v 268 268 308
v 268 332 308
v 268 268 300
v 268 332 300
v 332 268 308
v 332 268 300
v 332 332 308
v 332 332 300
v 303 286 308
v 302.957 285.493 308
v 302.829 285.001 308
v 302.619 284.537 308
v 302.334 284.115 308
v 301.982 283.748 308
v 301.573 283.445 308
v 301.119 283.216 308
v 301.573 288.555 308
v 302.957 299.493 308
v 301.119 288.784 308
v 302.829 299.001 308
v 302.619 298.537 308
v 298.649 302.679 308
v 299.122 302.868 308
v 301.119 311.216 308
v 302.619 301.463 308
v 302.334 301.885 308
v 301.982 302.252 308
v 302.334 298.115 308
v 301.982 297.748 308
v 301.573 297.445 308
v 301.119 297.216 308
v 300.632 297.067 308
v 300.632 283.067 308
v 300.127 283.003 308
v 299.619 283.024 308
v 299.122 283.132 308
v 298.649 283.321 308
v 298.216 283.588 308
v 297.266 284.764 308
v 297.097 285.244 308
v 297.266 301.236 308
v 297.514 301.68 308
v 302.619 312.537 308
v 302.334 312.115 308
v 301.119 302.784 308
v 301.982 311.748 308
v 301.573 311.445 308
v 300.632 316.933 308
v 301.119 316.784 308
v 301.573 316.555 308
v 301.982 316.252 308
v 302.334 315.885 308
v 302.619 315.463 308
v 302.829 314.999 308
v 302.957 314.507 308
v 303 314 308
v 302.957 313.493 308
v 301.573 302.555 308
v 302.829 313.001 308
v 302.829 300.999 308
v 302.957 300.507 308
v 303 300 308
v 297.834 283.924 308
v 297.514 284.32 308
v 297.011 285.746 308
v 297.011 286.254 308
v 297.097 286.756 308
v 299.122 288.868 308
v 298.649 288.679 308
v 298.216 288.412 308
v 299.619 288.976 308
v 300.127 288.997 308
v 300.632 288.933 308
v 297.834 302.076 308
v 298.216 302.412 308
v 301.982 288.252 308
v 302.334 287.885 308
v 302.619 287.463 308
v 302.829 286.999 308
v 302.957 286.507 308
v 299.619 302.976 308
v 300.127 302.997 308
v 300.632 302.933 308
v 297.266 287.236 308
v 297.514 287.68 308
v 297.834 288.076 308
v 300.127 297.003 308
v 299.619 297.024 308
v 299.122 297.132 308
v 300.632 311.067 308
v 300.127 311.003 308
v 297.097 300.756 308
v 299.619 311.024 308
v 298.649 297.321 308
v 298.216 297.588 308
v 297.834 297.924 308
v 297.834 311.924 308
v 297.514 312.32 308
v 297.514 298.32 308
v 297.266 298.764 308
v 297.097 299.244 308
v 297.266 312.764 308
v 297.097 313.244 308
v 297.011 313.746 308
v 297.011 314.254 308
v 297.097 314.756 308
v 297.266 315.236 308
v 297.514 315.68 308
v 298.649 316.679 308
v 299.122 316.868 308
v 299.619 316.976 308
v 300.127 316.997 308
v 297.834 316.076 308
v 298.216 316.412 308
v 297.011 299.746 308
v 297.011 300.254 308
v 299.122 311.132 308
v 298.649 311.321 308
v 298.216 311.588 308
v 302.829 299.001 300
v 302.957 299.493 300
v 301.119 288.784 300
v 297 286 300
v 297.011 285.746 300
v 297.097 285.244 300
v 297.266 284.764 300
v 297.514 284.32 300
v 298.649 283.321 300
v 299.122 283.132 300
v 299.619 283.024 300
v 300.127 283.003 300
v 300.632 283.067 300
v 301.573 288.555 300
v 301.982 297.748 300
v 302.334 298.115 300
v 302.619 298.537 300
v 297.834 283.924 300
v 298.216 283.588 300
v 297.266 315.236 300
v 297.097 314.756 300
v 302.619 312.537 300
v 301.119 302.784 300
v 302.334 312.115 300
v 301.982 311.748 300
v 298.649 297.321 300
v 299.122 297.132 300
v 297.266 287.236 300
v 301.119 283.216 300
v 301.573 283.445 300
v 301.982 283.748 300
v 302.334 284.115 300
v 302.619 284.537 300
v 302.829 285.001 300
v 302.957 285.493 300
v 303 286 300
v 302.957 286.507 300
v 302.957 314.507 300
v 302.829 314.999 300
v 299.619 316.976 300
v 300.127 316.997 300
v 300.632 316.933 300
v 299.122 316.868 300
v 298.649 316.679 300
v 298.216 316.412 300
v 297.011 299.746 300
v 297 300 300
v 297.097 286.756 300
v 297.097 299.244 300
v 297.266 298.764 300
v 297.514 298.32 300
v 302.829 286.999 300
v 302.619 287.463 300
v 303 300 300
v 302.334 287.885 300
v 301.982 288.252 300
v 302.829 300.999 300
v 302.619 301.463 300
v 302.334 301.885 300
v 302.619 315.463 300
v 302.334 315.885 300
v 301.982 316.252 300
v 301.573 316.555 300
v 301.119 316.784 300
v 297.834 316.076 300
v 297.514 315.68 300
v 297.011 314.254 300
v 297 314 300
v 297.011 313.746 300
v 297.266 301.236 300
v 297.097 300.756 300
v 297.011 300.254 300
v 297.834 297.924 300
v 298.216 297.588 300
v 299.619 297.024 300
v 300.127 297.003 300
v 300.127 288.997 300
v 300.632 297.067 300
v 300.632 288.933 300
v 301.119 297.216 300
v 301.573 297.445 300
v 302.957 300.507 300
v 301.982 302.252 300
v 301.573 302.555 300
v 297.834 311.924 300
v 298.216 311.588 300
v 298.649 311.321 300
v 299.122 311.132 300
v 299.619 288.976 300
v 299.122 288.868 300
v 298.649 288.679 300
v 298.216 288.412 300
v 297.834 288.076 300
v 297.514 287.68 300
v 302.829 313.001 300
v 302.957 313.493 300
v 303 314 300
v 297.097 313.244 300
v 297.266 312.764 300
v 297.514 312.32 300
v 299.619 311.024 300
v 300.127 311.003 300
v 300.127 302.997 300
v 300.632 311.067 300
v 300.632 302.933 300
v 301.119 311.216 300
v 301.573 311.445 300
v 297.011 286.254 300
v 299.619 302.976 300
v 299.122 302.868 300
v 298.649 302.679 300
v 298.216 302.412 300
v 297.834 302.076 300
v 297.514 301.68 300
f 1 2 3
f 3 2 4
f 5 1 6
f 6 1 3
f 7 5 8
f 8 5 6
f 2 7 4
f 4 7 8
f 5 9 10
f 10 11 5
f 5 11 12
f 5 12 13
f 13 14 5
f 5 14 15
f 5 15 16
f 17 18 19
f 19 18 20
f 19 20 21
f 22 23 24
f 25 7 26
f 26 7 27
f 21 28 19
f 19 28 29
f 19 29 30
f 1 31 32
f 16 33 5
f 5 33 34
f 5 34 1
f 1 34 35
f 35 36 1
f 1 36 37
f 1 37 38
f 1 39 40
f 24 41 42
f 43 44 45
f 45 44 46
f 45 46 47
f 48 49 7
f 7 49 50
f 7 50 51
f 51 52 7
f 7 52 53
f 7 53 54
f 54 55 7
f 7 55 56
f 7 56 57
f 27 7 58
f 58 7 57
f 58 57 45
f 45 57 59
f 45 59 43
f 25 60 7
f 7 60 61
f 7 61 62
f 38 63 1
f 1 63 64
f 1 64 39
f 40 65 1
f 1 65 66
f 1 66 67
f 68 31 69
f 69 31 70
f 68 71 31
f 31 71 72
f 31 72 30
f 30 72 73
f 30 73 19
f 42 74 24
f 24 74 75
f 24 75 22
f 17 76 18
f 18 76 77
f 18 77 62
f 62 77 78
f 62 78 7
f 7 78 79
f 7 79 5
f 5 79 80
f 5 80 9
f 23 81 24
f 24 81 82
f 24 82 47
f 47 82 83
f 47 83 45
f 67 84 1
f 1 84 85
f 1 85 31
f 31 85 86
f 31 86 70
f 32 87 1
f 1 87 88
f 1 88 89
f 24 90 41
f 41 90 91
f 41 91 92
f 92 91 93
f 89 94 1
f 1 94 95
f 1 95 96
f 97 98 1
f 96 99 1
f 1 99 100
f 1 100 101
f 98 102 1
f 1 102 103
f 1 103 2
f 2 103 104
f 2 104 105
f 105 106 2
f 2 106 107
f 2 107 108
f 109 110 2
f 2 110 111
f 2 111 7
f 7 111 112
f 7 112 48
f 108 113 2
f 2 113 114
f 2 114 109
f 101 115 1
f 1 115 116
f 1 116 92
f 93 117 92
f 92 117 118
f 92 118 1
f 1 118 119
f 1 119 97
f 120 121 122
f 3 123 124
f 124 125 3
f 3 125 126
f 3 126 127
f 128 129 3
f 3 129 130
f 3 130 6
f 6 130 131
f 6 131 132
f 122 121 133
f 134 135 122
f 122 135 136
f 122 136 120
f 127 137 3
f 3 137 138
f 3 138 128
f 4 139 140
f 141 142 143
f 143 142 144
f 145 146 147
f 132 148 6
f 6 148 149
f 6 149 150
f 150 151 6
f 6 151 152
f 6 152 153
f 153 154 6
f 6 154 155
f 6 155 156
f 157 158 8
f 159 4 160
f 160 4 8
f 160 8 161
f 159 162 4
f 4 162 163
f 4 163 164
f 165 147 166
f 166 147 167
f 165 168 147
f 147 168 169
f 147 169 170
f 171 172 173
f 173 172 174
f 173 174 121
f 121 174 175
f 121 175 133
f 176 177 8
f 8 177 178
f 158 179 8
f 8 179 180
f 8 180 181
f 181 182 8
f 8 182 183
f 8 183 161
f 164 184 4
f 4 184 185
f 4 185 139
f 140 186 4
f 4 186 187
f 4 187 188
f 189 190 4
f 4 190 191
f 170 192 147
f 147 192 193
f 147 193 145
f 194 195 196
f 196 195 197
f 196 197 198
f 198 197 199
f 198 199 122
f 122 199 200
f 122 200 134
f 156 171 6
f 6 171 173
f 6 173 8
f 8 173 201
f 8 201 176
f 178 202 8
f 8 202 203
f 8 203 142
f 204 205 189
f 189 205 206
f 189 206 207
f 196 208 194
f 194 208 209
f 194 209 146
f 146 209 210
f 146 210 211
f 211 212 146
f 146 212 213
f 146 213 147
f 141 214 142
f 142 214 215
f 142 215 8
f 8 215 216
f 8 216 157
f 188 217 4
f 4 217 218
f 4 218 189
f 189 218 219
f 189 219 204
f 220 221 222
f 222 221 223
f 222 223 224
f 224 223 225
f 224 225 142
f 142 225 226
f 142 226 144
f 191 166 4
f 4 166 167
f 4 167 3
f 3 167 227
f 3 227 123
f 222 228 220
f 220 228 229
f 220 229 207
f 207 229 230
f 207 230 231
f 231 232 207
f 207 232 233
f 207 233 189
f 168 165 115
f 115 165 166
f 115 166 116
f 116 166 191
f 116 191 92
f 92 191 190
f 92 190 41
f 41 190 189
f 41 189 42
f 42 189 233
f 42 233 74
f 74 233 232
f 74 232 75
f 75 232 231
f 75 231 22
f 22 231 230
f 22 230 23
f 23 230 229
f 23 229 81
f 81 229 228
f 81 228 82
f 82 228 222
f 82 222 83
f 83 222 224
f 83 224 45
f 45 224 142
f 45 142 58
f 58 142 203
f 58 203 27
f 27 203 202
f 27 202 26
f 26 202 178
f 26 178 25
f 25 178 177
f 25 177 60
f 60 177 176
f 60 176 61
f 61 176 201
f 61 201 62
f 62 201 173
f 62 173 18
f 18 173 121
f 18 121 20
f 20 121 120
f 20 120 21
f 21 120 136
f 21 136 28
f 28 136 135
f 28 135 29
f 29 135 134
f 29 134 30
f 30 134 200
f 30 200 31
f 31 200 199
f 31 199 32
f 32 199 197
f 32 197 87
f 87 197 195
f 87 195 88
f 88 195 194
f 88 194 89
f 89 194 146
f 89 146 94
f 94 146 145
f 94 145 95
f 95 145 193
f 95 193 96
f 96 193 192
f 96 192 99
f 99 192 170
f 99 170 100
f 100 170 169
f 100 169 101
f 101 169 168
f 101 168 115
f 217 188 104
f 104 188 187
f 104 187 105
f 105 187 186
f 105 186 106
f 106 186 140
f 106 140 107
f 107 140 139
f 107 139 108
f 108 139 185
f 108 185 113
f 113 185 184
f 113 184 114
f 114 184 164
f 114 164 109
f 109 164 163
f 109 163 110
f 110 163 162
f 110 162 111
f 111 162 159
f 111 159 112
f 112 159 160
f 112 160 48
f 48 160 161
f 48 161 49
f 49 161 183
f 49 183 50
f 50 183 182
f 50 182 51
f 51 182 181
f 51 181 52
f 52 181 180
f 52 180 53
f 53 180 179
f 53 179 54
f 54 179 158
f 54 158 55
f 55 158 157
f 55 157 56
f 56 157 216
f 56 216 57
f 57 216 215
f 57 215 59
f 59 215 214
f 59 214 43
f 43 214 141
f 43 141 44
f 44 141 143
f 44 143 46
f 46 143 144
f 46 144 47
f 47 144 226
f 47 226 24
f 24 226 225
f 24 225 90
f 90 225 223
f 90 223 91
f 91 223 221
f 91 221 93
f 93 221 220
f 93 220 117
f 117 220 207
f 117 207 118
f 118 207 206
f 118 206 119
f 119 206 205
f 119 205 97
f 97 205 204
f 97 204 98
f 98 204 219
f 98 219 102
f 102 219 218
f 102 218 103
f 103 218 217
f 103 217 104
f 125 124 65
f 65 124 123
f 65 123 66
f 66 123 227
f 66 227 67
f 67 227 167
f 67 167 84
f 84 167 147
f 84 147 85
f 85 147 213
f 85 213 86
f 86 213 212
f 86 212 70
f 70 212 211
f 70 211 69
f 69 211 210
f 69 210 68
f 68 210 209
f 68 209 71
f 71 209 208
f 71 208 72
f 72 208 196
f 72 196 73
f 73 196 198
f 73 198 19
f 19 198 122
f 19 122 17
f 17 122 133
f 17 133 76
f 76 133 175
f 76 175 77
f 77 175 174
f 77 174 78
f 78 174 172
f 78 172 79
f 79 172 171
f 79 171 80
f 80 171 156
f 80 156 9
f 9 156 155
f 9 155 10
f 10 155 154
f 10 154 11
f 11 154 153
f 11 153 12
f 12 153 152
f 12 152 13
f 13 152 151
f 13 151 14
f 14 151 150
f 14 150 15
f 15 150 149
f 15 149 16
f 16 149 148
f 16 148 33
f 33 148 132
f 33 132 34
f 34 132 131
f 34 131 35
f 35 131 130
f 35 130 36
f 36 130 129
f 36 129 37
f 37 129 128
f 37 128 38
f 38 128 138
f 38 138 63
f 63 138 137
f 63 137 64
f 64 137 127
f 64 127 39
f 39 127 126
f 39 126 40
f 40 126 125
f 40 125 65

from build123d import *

# Parameters (mm, degrees)
SKETCH1_W           = 64
SKETCH1_H           = 64
BOSS_EXTRUDE1_DEPTH = 8
SKETCH2_R           = 3
CUT_EXTRUDE1_DEPTH  = 28
SKETCH3_R           = 3
CUT_EXTRUDE2_DEPTH  = 28
SKETCH4_R           = 3
CUT_EXTRUDE3_DEPTH  = 28


with BuildPart() as part:
    # Sketch1 → Boss-Extrude1 (new body)
    with BuildSketch(Plane.XY.offset(300)):
        with Locations((300, 300)):
            Rectangle(SKETCH1_W, SKETCH1_H)
    extrude(amount=BOSS_EXTRUDE1_DEPTH)

    # Sketch2 → Cut-Extrude1 (cut)
    with BuildSketch(Plane.XY.offset(308)):
        with Locations((300, 300)):
            Circle(SKETCH2_R)
    extrude(amount=-CUT_EXTRUDE1_DEPTH, mode=Mode.SUBTRACT)

    # Sketch3 → Cut-Extrude2 (cut)
    with BuildSketch(Plane.XY.offset(308)):
        with Locations((300, 314)):
            Circle(SKETCH3_R)
    extrude(amount=-CUT_EXTRUDE2_DEPTH, mode=Mode.SUBTRACT)

    # Sketch4 → Cut-Extrude3 (cut)
    with BuildSketch(Plane.XY.offset(308)):
        with Locations((300, 286)):
            Circle(SKETCH4_R)
    extrude(amount=-CUT_EXTRUDE3_DEPTH, mode=Mode.SUBTRACT)


solid = part.part
